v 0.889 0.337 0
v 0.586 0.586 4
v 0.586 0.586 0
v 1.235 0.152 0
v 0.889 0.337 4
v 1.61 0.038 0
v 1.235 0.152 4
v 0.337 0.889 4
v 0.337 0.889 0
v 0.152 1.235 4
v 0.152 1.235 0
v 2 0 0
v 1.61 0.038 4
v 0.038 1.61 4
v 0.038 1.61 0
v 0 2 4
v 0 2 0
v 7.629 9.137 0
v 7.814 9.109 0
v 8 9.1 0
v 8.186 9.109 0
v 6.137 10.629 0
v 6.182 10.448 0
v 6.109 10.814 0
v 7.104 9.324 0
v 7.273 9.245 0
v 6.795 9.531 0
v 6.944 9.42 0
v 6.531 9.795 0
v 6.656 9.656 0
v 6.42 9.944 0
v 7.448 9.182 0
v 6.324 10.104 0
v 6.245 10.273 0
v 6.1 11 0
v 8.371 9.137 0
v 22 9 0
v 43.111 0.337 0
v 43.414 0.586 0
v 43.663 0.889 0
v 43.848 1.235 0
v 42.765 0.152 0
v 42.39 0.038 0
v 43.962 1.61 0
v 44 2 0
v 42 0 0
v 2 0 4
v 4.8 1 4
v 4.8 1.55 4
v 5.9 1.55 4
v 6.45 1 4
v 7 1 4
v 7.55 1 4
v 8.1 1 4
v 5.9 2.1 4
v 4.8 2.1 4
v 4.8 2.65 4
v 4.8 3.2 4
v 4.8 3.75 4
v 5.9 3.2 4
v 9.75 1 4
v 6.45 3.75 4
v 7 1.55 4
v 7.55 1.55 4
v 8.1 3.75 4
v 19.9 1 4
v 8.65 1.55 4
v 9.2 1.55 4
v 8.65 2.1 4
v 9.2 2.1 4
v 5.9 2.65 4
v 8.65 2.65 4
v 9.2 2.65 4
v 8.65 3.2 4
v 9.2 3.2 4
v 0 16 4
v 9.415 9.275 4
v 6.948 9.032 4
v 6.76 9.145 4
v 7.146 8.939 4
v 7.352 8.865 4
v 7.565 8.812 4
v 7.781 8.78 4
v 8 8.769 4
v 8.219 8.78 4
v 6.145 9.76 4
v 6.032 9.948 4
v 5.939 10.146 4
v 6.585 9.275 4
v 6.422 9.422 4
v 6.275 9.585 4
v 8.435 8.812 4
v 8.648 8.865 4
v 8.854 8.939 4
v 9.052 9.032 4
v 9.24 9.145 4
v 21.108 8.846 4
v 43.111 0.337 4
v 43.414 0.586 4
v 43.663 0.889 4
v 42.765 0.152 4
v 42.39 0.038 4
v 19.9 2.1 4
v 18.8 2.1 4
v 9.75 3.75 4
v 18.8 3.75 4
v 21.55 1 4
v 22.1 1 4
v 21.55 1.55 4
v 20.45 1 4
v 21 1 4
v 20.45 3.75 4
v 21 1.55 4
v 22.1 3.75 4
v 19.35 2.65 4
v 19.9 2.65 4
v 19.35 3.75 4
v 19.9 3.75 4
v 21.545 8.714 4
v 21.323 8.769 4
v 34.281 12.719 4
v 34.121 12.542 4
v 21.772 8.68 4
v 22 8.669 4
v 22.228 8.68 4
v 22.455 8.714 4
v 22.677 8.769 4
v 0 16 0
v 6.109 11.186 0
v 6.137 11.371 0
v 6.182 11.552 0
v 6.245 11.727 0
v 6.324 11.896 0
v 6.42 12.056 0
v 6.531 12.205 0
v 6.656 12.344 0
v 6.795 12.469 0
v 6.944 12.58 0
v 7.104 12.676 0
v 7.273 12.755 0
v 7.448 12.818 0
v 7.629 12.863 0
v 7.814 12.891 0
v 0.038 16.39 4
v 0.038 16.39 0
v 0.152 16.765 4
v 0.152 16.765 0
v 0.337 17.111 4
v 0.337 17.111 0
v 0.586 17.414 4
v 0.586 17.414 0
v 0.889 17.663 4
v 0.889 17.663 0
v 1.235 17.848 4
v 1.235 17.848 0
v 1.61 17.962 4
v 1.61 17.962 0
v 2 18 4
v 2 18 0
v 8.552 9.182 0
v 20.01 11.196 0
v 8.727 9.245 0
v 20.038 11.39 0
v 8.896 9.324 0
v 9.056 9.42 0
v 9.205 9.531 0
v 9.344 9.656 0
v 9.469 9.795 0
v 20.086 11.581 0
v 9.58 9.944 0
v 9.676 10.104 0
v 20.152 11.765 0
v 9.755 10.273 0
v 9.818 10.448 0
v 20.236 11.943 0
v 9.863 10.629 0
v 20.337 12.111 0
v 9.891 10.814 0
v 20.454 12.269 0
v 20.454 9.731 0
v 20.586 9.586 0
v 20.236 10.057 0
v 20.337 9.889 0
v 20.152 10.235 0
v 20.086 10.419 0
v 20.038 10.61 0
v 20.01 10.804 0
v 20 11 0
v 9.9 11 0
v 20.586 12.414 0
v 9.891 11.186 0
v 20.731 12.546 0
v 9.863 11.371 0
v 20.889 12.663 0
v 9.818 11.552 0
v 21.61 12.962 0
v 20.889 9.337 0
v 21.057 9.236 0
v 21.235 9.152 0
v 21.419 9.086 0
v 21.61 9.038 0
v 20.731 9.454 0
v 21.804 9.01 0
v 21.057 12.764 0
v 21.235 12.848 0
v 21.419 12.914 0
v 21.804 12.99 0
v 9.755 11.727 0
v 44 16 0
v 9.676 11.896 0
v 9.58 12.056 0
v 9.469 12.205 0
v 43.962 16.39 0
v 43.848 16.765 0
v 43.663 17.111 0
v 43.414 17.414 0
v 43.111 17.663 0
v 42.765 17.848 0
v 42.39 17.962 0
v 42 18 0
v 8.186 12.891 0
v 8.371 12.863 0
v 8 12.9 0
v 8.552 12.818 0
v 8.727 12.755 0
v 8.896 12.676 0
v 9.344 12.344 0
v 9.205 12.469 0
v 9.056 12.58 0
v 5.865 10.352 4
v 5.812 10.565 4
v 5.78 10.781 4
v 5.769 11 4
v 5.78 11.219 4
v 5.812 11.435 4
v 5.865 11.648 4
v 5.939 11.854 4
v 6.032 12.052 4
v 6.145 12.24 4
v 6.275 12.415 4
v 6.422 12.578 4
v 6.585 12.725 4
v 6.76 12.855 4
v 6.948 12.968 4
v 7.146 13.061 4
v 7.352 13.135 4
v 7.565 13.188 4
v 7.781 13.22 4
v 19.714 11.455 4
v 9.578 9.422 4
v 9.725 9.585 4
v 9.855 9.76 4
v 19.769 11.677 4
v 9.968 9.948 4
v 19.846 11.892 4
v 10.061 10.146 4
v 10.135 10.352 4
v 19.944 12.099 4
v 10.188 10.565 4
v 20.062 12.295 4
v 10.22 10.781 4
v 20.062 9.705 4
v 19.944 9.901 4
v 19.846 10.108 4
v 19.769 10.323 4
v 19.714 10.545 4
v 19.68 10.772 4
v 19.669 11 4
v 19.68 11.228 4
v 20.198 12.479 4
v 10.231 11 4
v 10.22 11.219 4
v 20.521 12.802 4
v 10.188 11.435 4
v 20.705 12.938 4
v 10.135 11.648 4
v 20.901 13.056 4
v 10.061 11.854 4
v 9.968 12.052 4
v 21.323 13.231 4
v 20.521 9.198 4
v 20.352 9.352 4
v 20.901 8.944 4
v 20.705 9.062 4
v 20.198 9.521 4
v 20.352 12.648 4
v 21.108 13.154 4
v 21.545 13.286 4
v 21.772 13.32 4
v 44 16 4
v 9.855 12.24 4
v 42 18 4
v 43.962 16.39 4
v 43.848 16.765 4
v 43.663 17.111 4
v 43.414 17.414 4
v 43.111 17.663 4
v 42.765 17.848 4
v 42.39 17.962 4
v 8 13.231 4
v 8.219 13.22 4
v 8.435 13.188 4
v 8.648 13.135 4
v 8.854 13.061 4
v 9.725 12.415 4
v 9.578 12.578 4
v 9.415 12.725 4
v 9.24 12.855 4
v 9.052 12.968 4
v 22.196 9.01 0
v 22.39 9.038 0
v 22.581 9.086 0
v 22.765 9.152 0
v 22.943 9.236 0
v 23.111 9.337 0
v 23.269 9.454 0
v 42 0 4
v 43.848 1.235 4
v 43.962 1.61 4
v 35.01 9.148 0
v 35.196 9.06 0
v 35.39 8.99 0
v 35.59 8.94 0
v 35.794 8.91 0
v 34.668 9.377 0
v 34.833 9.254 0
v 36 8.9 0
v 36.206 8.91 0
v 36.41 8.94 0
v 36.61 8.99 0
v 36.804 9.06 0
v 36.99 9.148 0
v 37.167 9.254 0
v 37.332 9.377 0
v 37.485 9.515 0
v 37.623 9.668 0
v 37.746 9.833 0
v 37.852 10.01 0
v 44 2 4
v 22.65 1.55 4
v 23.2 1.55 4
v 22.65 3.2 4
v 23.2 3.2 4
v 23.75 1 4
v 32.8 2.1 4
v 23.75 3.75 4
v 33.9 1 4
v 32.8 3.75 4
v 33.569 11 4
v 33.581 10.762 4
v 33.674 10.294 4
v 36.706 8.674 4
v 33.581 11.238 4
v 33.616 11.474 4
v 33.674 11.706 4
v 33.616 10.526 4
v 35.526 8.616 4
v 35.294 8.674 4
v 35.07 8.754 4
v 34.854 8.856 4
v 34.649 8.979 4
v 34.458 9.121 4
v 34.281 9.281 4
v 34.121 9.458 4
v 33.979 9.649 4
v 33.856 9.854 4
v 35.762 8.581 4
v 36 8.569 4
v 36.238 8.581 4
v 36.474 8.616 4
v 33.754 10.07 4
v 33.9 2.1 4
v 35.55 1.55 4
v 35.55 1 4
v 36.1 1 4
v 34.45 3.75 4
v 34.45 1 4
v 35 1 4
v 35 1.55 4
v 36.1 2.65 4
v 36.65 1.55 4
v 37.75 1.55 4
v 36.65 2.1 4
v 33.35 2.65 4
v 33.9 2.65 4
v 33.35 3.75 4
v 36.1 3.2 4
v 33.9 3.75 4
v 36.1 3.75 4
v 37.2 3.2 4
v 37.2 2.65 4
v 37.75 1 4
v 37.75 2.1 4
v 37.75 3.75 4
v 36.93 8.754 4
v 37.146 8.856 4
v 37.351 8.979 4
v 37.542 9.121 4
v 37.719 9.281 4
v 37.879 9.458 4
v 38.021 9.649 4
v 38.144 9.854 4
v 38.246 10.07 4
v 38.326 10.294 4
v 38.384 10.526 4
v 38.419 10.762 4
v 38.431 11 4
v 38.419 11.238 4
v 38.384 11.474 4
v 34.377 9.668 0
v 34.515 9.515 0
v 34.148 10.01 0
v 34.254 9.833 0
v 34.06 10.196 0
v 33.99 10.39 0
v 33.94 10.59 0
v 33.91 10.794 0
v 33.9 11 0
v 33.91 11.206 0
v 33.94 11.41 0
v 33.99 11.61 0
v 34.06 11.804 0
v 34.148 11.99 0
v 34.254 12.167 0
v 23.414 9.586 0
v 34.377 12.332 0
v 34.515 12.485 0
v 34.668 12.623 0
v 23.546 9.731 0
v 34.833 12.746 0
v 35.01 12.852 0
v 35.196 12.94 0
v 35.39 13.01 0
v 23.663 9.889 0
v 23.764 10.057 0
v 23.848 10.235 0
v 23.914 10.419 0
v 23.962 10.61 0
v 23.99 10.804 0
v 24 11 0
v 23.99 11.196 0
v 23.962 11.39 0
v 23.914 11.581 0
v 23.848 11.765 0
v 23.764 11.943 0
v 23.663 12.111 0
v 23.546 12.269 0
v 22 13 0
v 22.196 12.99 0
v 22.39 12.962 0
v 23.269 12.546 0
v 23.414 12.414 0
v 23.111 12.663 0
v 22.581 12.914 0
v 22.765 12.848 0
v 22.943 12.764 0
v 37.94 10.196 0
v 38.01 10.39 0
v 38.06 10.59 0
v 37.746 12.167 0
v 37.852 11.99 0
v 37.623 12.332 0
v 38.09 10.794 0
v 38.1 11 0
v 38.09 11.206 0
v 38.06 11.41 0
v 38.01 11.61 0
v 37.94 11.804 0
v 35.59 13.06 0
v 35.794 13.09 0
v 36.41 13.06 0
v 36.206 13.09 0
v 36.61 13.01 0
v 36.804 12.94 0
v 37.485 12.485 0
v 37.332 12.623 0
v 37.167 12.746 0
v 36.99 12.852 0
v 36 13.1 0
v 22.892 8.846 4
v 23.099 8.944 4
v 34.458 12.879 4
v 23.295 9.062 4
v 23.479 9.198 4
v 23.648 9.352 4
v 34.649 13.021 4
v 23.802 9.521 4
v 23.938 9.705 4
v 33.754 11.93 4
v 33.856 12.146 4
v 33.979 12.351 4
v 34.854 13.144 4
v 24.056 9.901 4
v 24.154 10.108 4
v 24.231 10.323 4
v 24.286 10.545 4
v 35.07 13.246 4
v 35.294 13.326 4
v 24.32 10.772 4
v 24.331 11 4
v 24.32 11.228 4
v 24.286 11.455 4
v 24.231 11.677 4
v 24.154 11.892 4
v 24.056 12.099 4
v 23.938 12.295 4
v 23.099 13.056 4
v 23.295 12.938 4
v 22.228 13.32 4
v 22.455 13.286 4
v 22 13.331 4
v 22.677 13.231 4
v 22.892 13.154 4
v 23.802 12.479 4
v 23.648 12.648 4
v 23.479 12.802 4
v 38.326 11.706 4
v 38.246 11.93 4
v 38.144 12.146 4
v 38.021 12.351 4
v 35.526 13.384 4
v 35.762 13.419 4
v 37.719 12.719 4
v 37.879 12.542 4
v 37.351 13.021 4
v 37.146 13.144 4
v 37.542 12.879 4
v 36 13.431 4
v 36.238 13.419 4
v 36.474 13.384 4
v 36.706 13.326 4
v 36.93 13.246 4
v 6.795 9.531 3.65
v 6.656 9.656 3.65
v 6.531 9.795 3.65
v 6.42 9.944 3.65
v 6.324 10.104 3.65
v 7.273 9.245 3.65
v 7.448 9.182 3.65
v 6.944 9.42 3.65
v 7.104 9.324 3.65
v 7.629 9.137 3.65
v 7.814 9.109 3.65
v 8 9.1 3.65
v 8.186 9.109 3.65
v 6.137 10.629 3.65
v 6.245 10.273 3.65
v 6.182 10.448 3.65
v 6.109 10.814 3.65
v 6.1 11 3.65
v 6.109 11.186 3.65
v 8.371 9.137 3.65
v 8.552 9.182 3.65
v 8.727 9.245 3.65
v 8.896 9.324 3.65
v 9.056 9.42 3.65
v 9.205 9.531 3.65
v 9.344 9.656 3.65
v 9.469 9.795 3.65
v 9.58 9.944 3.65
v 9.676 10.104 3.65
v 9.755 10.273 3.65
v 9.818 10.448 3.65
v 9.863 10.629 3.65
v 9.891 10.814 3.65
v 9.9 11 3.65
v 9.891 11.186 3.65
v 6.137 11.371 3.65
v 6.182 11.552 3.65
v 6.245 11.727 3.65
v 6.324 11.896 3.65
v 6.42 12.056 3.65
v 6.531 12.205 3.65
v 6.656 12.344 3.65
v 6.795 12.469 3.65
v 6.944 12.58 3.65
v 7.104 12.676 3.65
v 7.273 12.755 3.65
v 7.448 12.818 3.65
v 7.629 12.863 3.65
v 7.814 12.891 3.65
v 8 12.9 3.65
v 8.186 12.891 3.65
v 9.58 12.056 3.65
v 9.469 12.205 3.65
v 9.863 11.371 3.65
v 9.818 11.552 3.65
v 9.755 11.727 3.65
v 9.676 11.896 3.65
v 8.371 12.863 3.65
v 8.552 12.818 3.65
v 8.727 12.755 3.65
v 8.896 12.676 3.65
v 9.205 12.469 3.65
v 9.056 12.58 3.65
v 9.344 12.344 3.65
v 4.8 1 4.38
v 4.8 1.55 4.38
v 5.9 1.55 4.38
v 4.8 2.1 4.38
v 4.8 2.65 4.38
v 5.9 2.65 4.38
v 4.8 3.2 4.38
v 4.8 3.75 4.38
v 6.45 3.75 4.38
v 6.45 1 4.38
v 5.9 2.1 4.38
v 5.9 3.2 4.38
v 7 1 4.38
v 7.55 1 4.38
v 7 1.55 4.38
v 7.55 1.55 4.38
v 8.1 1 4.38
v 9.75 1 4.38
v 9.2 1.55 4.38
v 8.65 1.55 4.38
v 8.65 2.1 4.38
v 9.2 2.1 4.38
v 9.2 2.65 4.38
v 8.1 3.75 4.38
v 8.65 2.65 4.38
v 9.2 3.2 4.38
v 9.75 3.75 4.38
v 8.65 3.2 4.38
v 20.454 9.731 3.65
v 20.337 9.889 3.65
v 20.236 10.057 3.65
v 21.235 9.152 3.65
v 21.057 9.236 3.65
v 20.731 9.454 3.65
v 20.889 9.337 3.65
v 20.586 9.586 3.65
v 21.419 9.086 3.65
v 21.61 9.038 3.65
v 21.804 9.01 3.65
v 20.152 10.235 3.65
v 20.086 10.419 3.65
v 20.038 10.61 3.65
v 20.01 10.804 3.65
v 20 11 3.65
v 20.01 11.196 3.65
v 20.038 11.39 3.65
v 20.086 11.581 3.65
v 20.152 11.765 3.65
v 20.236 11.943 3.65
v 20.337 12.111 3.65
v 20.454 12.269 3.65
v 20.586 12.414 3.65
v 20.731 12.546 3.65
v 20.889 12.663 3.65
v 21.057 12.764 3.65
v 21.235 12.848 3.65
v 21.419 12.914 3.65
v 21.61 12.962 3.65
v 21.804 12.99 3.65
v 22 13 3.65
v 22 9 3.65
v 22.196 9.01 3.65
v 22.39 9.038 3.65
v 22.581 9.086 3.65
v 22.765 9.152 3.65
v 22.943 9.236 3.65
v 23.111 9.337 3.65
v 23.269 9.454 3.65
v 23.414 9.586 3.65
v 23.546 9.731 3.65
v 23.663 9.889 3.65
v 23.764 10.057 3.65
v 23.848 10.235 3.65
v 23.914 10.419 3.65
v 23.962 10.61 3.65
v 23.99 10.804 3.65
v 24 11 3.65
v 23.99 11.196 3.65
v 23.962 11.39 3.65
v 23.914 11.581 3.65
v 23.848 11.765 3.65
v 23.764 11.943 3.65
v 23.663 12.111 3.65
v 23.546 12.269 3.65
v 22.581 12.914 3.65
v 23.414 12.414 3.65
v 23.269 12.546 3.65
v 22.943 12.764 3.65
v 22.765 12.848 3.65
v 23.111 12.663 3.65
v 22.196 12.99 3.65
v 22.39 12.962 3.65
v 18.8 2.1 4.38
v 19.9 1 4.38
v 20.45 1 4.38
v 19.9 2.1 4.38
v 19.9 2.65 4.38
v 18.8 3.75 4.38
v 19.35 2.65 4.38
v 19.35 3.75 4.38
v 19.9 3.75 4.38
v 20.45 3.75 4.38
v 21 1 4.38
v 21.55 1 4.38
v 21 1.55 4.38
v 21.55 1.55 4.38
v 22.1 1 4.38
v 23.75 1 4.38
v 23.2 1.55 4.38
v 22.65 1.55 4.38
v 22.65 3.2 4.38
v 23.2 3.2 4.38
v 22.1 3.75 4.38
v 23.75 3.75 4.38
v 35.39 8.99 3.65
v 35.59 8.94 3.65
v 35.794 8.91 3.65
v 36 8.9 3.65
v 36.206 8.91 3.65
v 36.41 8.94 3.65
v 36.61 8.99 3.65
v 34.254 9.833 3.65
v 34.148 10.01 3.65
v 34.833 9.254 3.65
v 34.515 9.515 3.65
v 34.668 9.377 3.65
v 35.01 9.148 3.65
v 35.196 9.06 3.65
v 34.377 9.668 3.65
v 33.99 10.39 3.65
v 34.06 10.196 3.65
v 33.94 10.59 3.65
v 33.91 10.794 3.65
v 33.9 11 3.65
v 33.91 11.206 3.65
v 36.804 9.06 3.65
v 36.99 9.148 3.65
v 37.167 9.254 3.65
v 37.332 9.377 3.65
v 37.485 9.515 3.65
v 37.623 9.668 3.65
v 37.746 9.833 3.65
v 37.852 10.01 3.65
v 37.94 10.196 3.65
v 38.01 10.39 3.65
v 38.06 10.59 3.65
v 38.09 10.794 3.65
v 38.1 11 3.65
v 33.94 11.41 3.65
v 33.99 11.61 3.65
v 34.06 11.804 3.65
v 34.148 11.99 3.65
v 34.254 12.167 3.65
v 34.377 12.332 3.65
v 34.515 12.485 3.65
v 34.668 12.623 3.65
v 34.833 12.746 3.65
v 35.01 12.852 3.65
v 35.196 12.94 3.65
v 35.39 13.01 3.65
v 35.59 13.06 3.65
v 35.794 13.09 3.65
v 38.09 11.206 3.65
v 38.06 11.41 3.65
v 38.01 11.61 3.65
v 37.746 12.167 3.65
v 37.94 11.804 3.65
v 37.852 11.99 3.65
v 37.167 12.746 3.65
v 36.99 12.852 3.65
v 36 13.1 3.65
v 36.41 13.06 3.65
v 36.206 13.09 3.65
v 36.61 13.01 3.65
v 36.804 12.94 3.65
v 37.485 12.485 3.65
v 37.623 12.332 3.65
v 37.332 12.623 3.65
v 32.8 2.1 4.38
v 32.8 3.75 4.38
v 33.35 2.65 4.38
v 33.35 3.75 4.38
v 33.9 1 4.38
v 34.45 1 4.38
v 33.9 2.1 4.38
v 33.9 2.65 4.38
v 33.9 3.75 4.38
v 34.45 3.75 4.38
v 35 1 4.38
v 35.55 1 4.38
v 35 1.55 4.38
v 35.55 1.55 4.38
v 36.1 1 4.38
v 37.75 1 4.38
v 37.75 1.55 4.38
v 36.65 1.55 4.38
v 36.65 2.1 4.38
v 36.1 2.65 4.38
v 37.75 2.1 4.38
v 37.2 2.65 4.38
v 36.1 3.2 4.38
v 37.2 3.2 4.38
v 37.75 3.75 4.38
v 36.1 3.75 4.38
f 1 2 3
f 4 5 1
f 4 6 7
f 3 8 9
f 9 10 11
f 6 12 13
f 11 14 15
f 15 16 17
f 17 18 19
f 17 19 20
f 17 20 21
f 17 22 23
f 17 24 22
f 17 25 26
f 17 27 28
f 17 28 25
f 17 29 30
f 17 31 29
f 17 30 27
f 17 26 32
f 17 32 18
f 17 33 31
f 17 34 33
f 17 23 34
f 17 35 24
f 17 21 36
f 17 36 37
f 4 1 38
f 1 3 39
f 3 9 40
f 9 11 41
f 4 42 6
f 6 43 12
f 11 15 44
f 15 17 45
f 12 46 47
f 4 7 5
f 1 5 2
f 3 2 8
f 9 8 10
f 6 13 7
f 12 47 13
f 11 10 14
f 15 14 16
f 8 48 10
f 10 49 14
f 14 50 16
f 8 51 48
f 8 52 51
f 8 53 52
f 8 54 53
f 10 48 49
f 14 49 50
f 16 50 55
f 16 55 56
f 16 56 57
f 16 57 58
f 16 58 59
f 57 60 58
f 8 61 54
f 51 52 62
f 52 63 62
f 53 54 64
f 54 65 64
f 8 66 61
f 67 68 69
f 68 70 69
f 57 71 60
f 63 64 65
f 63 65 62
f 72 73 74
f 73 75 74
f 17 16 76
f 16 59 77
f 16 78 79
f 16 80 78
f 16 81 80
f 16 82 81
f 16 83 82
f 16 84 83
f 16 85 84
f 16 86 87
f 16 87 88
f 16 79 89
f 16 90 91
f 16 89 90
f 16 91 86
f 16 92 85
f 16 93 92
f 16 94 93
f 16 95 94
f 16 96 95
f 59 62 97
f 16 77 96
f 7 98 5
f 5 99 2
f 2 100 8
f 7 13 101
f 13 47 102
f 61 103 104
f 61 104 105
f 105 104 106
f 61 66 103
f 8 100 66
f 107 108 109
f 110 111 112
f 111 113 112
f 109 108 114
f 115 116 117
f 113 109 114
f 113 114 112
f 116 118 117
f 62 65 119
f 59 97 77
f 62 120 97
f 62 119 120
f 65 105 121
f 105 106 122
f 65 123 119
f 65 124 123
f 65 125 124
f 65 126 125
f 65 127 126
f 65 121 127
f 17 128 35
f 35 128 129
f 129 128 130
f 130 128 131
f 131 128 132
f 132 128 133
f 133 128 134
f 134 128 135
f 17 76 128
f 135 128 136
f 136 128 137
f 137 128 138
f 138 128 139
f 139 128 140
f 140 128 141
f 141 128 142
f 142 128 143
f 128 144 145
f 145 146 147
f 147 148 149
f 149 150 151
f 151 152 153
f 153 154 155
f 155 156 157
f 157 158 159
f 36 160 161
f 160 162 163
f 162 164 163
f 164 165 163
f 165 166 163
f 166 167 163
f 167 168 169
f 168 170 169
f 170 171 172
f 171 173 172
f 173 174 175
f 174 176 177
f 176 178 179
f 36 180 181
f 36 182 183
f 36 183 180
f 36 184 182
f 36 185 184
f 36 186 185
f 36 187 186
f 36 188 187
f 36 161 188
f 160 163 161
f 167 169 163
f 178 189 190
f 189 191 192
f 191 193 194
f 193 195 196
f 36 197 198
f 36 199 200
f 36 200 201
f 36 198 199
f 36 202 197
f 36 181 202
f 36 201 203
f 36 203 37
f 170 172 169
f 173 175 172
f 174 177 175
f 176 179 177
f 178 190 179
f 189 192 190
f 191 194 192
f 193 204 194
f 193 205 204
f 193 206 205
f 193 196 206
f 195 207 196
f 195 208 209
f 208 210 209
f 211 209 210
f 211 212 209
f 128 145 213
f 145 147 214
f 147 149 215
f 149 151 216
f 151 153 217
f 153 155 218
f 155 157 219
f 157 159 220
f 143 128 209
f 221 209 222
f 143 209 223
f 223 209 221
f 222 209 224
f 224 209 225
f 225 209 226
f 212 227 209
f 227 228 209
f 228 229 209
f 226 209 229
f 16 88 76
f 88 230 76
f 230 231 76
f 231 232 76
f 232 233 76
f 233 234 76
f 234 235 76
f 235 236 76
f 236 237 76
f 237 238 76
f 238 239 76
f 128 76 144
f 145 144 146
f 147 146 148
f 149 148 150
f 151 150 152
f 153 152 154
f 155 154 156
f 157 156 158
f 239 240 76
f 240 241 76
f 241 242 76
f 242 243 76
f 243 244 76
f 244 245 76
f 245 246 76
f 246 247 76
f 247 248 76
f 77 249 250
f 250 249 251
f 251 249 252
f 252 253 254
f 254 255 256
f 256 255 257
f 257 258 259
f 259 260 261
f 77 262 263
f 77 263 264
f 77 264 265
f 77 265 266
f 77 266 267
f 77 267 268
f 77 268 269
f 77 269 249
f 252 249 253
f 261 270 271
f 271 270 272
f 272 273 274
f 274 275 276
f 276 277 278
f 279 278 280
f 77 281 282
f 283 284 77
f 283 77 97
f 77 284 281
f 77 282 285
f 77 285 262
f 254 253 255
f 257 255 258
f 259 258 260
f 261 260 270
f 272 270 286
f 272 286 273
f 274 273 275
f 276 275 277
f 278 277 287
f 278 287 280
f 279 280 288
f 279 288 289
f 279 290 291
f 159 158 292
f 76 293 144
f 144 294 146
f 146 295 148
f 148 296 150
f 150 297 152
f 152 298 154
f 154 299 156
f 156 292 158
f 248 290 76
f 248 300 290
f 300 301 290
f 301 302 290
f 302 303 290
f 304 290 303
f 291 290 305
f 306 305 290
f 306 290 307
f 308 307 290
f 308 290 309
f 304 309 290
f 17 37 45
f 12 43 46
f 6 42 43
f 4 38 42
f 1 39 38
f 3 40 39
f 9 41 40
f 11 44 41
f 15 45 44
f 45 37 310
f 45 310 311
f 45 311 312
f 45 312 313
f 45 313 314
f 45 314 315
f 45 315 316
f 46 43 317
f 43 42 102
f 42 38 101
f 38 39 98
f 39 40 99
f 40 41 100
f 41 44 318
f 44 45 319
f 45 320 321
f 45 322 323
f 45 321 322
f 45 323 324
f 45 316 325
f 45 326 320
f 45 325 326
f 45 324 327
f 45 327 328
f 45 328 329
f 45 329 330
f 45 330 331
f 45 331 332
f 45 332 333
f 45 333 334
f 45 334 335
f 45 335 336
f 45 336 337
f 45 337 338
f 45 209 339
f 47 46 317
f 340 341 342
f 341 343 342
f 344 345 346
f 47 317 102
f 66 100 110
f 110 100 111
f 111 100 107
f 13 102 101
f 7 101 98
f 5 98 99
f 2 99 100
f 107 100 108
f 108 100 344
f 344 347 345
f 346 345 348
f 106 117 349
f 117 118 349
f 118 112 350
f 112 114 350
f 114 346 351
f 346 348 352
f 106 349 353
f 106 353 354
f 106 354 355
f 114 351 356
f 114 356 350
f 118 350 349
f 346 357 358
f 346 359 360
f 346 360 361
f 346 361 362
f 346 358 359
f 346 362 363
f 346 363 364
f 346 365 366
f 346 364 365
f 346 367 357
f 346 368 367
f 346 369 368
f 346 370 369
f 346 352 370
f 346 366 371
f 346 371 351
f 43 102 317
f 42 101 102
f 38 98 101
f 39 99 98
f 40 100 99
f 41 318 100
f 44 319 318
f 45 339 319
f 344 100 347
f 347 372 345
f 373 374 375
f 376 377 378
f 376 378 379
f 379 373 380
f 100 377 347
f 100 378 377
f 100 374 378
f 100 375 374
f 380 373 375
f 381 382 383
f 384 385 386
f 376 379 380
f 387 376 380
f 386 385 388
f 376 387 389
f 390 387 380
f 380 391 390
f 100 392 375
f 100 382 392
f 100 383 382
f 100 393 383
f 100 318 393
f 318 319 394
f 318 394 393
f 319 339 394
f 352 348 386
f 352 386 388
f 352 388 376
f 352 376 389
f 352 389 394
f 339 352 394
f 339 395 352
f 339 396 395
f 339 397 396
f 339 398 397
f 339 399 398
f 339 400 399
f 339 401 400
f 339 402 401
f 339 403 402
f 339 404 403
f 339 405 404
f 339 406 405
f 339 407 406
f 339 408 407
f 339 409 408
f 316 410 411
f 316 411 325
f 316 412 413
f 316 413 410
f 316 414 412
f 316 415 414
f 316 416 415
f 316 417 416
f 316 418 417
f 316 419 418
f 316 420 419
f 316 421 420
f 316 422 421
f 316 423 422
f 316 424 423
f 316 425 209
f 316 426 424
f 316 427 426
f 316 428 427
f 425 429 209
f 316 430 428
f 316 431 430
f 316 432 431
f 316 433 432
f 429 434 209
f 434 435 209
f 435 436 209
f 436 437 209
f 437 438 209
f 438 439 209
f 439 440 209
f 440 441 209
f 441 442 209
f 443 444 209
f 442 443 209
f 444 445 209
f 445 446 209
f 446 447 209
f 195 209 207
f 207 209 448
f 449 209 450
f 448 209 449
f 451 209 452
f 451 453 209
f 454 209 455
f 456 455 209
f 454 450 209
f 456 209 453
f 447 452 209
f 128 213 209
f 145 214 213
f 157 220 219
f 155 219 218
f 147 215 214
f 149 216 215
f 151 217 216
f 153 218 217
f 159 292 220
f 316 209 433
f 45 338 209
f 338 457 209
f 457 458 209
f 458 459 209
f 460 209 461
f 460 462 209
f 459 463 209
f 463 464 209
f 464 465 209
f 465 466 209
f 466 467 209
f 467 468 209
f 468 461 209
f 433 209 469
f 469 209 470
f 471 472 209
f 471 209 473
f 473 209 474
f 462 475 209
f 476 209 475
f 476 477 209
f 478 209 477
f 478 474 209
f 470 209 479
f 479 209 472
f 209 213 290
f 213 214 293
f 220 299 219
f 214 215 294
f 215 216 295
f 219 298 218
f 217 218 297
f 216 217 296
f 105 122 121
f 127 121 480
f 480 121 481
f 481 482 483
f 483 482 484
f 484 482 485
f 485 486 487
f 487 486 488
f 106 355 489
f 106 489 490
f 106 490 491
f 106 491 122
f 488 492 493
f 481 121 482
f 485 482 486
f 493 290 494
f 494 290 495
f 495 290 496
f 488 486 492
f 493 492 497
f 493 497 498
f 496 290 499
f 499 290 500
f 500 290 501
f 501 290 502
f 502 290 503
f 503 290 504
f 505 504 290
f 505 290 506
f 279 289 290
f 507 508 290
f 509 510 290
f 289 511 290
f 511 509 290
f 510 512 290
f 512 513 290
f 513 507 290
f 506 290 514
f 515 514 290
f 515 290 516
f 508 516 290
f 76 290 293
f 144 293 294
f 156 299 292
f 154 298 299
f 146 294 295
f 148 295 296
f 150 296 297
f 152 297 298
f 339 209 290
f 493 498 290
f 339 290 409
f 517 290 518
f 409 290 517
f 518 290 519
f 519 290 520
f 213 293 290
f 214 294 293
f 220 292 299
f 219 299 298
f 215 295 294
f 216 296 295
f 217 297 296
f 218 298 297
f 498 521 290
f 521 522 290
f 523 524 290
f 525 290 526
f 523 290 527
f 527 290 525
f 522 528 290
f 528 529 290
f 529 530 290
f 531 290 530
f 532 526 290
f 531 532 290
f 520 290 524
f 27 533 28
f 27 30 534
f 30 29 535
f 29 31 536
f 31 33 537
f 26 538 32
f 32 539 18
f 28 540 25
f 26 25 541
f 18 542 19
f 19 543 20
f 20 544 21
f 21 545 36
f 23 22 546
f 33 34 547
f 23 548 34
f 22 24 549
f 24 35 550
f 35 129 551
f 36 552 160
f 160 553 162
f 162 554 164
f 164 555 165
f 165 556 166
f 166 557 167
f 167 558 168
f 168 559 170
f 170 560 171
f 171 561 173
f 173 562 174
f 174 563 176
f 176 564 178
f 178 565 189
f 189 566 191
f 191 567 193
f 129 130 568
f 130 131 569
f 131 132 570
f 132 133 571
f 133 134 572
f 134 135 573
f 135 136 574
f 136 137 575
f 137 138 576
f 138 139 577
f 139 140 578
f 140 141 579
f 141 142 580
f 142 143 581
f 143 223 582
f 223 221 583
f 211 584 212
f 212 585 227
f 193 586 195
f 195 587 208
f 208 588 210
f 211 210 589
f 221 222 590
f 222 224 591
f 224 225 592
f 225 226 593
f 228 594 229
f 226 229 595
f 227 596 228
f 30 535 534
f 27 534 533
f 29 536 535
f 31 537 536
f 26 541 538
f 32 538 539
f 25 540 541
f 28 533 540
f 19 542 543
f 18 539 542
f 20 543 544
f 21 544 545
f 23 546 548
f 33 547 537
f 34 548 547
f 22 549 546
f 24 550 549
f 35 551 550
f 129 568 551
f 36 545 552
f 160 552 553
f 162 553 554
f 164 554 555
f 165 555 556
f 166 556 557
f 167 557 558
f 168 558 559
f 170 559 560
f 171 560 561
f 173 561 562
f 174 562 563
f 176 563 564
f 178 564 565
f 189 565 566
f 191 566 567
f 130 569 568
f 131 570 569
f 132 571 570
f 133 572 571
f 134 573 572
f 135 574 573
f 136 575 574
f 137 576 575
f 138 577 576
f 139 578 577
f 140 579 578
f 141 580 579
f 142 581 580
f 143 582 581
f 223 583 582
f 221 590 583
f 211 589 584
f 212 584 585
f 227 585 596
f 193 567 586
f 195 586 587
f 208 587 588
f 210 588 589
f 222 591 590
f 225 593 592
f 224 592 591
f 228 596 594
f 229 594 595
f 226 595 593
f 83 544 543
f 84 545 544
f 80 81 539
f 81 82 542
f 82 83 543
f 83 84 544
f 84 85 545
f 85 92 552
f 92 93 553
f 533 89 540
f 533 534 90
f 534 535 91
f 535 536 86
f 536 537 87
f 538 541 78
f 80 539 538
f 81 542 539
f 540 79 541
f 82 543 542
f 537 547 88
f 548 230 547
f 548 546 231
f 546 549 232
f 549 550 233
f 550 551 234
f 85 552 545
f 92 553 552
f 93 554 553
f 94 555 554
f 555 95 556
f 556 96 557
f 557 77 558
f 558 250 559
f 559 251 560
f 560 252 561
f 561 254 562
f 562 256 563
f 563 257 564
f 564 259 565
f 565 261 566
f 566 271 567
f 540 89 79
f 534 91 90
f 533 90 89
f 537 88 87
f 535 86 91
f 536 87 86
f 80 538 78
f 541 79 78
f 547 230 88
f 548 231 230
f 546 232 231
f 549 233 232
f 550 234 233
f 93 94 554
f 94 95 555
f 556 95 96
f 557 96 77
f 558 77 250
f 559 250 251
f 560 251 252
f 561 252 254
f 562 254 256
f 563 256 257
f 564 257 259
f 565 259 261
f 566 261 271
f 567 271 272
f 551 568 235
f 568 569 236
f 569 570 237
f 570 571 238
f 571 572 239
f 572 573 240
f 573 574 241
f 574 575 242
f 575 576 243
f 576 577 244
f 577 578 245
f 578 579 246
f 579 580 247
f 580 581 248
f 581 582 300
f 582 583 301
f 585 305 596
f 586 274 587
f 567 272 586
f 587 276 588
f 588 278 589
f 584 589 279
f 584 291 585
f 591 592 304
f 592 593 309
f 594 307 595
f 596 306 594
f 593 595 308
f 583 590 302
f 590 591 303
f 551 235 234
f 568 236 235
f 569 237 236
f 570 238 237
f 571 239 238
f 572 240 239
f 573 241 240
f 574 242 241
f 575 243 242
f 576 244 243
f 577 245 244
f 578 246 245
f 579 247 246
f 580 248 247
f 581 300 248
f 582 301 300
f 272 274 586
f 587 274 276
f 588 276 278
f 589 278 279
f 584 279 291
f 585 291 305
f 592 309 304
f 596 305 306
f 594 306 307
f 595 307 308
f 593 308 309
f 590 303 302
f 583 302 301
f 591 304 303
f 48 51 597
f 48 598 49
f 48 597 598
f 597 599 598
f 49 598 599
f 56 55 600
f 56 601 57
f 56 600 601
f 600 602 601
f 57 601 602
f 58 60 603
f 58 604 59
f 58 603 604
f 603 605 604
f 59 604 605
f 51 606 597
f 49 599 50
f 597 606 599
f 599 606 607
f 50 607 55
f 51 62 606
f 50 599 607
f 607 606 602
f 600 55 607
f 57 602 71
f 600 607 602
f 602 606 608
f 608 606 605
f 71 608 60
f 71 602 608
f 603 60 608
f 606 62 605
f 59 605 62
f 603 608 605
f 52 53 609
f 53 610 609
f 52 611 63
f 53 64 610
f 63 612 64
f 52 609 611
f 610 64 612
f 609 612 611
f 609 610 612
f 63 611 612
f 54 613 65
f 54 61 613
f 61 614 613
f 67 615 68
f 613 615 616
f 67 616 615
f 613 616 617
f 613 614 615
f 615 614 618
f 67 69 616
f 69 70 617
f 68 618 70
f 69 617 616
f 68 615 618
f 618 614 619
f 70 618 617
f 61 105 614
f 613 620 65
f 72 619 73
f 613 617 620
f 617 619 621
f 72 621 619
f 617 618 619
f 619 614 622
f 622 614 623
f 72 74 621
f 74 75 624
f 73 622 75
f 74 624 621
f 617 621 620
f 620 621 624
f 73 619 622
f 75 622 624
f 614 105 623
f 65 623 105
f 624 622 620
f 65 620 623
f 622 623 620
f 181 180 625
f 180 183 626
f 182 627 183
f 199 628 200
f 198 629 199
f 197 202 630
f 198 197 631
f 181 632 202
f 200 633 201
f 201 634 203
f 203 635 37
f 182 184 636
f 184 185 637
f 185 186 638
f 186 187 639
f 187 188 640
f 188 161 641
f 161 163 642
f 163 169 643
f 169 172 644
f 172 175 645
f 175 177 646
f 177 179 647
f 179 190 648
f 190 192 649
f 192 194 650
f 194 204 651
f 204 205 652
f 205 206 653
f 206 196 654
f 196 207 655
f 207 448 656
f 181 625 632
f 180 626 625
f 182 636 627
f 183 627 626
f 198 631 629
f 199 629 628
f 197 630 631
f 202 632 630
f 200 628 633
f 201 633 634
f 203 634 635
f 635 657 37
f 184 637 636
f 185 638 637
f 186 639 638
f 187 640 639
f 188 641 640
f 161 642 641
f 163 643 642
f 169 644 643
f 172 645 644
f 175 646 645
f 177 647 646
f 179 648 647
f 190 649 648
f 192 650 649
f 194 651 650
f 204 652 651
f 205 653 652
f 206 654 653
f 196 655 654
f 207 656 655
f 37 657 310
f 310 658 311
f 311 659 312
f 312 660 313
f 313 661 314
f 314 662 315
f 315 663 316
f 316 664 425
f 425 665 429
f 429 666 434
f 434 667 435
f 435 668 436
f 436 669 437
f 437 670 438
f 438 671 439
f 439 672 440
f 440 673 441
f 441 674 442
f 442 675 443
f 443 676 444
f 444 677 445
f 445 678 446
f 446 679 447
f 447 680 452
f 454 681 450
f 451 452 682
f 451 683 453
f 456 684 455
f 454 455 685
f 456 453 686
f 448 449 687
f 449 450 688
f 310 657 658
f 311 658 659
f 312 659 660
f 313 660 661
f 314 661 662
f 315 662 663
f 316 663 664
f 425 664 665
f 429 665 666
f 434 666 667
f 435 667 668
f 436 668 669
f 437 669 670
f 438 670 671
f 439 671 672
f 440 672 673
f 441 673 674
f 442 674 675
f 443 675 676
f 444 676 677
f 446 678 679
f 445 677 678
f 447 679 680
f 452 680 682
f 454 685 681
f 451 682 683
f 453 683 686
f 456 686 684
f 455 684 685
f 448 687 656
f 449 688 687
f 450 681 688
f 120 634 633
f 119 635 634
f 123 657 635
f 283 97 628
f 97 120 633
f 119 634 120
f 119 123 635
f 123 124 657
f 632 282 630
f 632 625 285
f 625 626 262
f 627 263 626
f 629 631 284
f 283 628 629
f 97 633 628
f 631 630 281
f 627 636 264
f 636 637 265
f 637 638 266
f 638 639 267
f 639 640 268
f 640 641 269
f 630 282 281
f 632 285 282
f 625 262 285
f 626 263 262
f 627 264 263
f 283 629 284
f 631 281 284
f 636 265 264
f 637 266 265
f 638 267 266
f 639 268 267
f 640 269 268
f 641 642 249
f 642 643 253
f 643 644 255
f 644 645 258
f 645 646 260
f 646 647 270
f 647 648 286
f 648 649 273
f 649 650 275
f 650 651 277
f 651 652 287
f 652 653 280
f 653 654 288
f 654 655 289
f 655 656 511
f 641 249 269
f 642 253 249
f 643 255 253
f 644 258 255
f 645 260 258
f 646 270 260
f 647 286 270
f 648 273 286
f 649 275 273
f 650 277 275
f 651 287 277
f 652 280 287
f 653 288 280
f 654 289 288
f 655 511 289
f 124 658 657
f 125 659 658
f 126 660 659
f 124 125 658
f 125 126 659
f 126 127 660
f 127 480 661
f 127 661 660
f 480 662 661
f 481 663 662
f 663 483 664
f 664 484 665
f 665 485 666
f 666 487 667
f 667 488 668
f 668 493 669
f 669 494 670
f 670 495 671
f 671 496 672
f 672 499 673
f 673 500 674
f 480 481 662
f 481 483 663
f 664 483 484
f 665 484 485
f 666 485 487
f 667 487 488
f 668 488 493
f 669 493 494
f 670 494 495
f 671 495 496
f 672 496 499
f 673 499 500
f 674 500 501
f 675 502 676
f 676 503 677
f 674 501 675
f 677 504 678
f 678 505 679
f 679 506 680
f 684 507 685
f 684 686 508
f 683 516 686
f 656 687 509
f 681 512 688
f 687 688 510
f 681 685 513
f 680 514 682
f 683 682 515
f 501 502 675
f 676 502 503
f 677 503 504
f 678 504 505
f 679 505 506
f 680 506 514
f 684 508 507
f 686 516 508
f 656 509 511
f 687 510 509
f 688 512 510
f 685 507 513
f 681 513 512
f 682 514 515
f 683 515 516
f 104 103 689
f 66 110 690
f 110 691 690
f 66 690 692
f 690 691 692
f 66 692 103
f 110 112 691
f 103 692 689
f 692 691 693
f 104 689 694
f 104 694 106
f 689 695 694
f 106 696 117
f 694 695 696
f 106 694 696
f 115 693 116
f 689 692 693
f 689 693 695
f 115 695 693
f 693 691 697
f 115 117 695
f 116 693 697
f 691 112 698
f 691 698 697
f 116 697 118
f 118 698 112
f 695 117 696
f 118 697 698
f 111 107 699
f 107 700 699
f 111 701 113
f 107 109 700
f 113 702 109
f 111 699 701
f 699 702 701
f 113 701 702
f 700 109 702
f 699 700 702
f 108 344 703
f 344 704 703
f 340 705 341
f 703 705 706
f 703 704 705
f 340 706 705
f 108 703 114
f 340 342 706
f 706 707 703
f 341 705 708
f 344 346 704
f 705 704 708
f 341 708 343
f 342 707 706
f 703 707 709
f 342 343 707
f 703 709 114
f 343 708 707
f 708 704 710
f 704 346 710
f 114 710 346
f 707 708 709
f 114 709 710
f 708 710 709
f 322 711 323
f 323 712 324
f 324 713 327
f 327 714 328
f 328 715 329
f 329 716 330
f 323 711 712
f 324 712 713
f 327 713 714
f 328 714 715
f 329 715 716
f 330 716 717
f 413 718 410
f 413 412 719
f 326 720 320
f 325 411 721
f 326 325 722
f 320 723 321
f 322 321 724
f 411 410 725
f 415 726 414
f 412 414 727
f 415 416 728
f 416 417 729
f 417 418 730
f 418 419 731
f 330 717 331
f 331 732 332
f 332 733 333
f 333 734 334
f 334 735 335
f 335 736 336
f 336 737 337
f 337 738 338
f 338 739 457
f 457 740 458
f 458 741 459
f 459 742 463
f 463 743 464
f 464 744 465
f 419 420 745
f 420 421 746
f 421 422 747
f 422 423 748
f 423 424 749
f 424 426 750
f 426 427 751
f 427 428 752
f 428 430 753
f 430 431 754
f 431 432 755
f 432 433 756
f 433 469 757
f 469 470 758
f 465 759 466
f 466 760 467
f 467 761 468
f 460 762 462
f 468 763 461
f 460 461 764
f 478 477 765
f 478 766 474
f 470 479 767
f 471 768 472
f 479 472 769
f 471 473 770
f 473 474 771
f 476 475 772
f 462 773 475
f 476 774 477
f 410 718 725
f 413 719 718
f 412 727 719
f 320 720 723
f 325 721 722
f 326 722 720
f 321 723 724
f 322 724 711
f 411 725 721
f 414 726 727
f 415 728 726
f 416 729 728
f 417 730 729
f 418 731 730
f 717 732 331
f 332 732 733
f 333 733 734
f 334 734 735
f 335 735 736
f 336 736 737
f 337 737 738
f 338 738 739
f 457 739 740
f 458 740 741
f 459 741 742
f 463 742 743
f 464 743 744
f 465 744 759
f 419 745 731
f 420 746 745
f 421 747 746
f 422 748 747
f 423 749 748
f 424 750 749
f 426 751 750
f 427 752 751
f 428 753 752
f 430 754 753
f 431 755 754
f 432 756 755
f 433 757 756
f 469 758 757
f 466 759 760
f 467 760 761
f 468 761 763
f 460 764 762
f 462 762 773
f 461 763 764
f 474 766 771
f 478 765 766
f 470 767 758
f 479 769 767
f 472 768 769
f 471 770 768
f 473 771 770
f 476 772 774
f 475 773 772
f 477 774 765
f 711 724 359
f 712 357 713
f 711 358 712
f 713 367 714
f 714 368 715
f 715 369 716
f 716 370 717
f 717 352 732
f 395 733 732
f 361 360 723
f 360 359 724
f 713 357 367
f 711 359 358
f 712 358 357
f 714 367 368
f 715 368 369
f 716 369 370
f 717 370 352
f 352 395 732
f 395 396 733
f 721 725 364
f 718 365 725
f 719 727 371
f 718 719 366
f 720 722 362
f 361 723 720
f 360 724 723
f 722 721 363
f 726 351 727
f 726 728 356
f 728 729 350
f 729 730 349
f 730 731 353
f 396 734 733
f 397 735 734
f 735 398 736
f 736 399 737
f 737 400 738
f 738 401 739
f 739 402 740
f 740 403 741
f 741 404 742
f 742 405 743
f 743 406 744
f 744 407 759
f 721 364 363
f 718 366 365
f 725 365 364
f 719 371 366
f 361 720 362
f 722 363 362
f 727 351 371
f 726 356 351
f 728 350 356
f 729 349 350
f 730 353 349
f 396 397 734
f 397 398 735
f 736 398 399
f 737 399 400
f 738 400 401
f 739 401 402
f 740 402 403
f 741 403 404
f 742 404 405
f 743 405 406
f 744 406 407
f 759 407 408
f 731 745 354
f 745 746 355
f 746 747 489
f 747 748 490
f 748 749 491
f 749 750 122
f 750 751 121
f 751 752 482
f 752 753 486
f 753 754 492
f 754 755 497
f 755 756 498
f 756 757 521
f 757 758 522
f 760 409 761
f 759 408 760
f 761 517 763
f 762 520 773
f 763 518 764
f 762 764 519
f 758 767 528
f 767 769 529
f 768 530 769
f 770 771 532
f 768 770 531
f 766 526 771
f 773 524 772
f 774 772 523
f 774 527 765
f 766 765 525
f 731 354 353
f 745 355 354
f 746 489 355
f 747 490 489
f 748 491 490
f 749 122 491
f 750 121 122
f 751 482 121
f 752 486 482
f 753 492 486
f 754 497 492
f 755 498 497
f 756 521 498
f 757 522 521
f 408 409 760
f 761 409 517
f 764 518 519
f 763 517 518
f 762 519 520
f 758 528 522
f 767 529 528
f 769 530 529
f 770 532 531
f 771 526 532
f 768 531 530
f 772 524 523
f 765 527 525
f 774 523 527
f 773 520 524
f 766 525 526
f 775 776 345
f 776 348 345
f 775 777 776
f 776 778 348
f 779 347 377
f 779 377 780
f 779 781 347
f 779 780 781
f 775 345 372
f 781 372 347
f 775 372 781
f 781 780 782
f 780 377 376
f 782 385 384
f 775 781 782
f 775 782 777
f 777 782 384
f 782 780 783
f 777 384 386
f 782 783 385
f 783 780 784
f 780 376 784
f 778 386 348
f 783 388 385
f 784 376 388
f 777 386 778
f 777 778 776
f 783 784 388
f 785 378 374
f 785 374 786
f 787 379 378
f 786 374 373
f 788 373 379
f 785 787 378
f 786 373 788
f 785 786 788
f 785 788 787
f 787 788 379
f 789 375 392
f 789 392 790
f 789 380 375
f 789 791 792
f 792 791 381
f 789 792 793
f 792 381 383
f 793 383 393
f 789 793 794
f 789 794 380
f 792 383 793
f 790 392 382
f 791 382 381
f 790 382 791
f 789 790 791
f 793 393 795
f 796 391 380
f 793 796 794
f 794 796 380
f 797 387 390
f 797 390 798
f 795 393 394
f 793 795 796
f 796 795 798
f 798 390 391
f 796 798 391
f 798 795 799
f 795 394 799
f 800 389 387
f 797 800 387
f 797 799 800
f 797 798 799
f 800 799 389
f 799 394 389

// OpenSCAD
// mm / generated from rev4-parameters.json
union(){
difference(){
union(){
difference(){
union(){
difference(){
translate([0, 0, 0]){
linear_extrude(height=4.0) polygon(points=[[42.0, 0.0], [2.0, 0.0], [1.609819, 0.038429], [1.234633, 0.152241], [0.88886, 0.337061], [0.585786, 0.585786], [0.337061, 0.88886], [0.152241, 1.234633], [0.038429, 1.609819], [0.0, 2.0], [0.0, 16.0], [0.038429, 16.390181], [0.152241, 16.765367], [0.337061, 17.11114], [0.585786, 17.414214], [0.88886, 17.662939], [1.234633, 17.847759], [1.609819, 17.961571], [2.0, 18.0], [42.0, 18.0], [42.390181, 17.961571], [42.765367, 17.847759], [43.11114, 17.662939], [43.414214, 17.414214], [43.662939, 17.11114], [43.847759, 16.765367], [43.961571, 16.390181], [44.0, 16.0], [44.0, 2.0], [43.961571, 1.609819], [43.847759, 1.234633], [43.662939, 0.88886], [43.414214, 0.585786], [43.11114, 0.337061], [42.765367, 0.152241], [42.390181, 0.038429]],paths=[[0, 1, 2, 3, 4, 5, 6, 7, 8, 9, 10, 11, 12, 13, 14, 15, 16, 17, 18, 19, 20, 21, 22, 23, 24, 25, 26, 27, 28, 29, 30, 31, 32, 33, 34, 35]]);
}
union(){
translate([8, 11, -0.02]){
cylinder(h=4.04,d1=3.8,d2=3.8,$fn=64);
}
translate([8, 11, 3.65]){
cylinder(h=0.37,d1=3.8,d2=4.5,$fn=64);
}
}
}
union(){
translate([0, 0, 3.98]){
linear_extrude(height=0.4) polygon(points=[[5.9, 1.55], [5.9, 2.1], [5.35, 2.1], [4.8, 2.1], [4.8, 2.65], [5.35, 2.65], [5.9, 2.65], [5.9, 3.2], [5.35, 3.2], [4.8, 3.2], [4.8, 3.75], [5.35, 3.75], [5.9, 3.75], [6.45, 3.75], [6.45, 3.2], [6.45, 2.65], [6.45, 2.1], [6.45, 1.55], [6.45, 1.0], [5.9, 1.0], [5.35, 1.0], [4.8, 1.0], [4.8, 1.55], [5.35, 1.55]],paths=[[0, 1, 2, 3, 4, 5, 6, 7, 8, 9, 10, 11, 12, 13, 14, 15, 16, 17, 18, 19, 20, 21, 22, 23]]);
}
translate([0, 0, 3.98]){
linear_extrude(height=0.4) polygon(points=[[7.55, 1.0], [7.0, 1.0], [7.0, 1.55], [7.55, 1.55]],paths=[[0, 1, 2, 3]]);
}
translate([0, 0, 3.98]){
linear_extrude(height=0.4) polygon(points=[[9.2, 3.75], [9.75, 3.75], [9.75, 3.2], [9.75, 2.65], [9.75, 2.1], [9.75, 1.55], [9.75, 1.0], [9.2, 1.0], [8.65, 1.0], [8.1, 1.0], [8.1, 1.55], [8.1, 2.1], [8.1, 2.65], [8.1, 3.2], [8.1, 3.75], [8.65, 3.75], [8.65, 2.1], [8.65, 1.55], [9.2, 1.55], [9.2, 2.1], [9.2, 3.2], [8.65, 3.2], [8.65, 2.65], [9.2, 2.65]],paths=[[0, 1, 2, 3, 4, 5, 6, 7, 8, 9, 10, 11, 12, 13, 14, 15], [16, 17, 18, 19], [20, 21, 22, 23]]);
}
}
}
union(){
translate([22, 11, -0.02]){
cylinder(h=4.04,d1=4.0,d2=4.0,$fn=64);
}
translate([22, 11, 3.65]){
cylinder(h=0.37,d1=4.0,d2=4.7,$fn=64);
}
}
}
union(){
translate([0, 0, 3.98]){
linear_extrude(height=0.4) polygon(points=[[19.35, 2.1], [18.8, 2.1], [18.8, 2.65], [18.8, 3.2], [18.8, 3.75], [19.35, 3.75], [19.35, 3.2], [19.35, 2.65], [19.9, 2.65], [19.9, 3.2], [19.9, 3.75], [20.45, 3.75], [20.45, 3.2], [20.45, 2.65], [20.45, 2.1], [20.45, 1.55], [20.45, 1.0], [19.9, 1.0], [19.9, 1.55], [19.9, 2.1]],paths=[[0, 1, 2, 3, 4, 5, 6, 7, 8, 9, 10, 11, 12, 13, 14, 15, 16, 17, 18, 19]]);
}
translate([0, 0, 3.98]){
linear_extrude(height=0.4) polygon(points=[[21.55, 1.0], [21.0, 1.0], [21.0, 1.55], [21.55, 1.55]],paths=[[0, 1, 2, 3]]);
}
translate([0, 0, 3.98]){
linear_extrude(height=0.4) polygon(points=[[22.1, 3.75], [22.65, 3.75], [23.2, 3.75], [23.75, 3.75], [23.75, 3.2], [23.75, 2.65], [23.75, 2.1], [23.75, 1.55], [23.75, 1.0], [23.2, 1.0], [22.65, 1.0], [22.1, 1.0], [22.1, 1.55], [22.1, 2.1], [22.1, 2.65], [22.1, 3.2], [22.65, 2.1], [22.65, 1.55], [23.2, 1.55], [23.2, 2.1], [23.2, 2.65], [23.2, 3.2], [22.65, 3.2], [22.65, 2.65]],paths=[[0, 1, 2, 3, 4, 5, 6, 7, 8, 9, 10, 11, 12, 13, 14, 15], [16, 17, 18, 19, 20, 21, 22, 23]]);
}
}
}
union(){
translate([36, 11, -0.02]){
cylinder(h=4.04,d1=4.2,d2=4.2,$fn=64);
}
translate([36, 11, 3.65]){
cylinder(h=0.37,d1=4.2,d2=4.9,$fn=64);
}
}
}
union(){
translate([0, 0, 3.98]){
linear_extrude(height=0.4) polygon(points=[[33.35, 2.1], [32.8, 2.1], [32.8, 2.65], [32.8, 3.2], [32.8, 3.75], [33.35, 3.75], [33.35, 3.2], [33.35, 2.65], [33.9, 2.65], [33.9, 3.2], [33.9, 3.75], [34.45, 3.75], [34.45, 3.2], [34.45, 2.65], [34.45, 2.1], [34.45, 1.55], [34.45, 1.0], [33.9, 1.0], [33.9, 1.55], [33.9, 2.1]],paths=[[0, 1, 2, 3, 4, 5, 6, 7, 8, 9, 10, 11, 12, 13, 14, 15, 16, 17, 18, 19]]);
}
translate([0, 0, 3.98]){
linear_extrude(height=0.4) polygon(points=[[35.55, 1.0], [35.0, 1.0], [35.0, 1.55], [35.55, 1.55]],paths=[[0, 1, 2, 3]]);
}
translate([0, 0, 3.98]){
linear_extrude(height=0.4) polygon(points=[[37.2, 3.75], [37.75, 3.75], [37.75, 3.2], [37.75, 2.65], [37.75, 2.1], [37.2, 2.1], [36.65, 2.1], [36.65, 1.55], [37.2, 1.55], [37.75, 1.55], [37.75, 1.0], [37.2, 1.0], [36.65, 1.0], [36.1, 1.0], [36.1, 1.55], [36.1, 2.1], [36.1, 2.65], [36.65, 2.65], [37.2, 2.65], [37.2, 3.2], [36.65, 3.2], [36.1, 3.2], [36.1, 3.75], [36.65, 3.75]],paths=[[0, 1, 2, 3, 4, 5, 6, 7, 8, 9, 10, 11, 12, 13, 14, 15, 16, 17, 18, 19, 20, 21, 22, 23]]);
}
}
}
